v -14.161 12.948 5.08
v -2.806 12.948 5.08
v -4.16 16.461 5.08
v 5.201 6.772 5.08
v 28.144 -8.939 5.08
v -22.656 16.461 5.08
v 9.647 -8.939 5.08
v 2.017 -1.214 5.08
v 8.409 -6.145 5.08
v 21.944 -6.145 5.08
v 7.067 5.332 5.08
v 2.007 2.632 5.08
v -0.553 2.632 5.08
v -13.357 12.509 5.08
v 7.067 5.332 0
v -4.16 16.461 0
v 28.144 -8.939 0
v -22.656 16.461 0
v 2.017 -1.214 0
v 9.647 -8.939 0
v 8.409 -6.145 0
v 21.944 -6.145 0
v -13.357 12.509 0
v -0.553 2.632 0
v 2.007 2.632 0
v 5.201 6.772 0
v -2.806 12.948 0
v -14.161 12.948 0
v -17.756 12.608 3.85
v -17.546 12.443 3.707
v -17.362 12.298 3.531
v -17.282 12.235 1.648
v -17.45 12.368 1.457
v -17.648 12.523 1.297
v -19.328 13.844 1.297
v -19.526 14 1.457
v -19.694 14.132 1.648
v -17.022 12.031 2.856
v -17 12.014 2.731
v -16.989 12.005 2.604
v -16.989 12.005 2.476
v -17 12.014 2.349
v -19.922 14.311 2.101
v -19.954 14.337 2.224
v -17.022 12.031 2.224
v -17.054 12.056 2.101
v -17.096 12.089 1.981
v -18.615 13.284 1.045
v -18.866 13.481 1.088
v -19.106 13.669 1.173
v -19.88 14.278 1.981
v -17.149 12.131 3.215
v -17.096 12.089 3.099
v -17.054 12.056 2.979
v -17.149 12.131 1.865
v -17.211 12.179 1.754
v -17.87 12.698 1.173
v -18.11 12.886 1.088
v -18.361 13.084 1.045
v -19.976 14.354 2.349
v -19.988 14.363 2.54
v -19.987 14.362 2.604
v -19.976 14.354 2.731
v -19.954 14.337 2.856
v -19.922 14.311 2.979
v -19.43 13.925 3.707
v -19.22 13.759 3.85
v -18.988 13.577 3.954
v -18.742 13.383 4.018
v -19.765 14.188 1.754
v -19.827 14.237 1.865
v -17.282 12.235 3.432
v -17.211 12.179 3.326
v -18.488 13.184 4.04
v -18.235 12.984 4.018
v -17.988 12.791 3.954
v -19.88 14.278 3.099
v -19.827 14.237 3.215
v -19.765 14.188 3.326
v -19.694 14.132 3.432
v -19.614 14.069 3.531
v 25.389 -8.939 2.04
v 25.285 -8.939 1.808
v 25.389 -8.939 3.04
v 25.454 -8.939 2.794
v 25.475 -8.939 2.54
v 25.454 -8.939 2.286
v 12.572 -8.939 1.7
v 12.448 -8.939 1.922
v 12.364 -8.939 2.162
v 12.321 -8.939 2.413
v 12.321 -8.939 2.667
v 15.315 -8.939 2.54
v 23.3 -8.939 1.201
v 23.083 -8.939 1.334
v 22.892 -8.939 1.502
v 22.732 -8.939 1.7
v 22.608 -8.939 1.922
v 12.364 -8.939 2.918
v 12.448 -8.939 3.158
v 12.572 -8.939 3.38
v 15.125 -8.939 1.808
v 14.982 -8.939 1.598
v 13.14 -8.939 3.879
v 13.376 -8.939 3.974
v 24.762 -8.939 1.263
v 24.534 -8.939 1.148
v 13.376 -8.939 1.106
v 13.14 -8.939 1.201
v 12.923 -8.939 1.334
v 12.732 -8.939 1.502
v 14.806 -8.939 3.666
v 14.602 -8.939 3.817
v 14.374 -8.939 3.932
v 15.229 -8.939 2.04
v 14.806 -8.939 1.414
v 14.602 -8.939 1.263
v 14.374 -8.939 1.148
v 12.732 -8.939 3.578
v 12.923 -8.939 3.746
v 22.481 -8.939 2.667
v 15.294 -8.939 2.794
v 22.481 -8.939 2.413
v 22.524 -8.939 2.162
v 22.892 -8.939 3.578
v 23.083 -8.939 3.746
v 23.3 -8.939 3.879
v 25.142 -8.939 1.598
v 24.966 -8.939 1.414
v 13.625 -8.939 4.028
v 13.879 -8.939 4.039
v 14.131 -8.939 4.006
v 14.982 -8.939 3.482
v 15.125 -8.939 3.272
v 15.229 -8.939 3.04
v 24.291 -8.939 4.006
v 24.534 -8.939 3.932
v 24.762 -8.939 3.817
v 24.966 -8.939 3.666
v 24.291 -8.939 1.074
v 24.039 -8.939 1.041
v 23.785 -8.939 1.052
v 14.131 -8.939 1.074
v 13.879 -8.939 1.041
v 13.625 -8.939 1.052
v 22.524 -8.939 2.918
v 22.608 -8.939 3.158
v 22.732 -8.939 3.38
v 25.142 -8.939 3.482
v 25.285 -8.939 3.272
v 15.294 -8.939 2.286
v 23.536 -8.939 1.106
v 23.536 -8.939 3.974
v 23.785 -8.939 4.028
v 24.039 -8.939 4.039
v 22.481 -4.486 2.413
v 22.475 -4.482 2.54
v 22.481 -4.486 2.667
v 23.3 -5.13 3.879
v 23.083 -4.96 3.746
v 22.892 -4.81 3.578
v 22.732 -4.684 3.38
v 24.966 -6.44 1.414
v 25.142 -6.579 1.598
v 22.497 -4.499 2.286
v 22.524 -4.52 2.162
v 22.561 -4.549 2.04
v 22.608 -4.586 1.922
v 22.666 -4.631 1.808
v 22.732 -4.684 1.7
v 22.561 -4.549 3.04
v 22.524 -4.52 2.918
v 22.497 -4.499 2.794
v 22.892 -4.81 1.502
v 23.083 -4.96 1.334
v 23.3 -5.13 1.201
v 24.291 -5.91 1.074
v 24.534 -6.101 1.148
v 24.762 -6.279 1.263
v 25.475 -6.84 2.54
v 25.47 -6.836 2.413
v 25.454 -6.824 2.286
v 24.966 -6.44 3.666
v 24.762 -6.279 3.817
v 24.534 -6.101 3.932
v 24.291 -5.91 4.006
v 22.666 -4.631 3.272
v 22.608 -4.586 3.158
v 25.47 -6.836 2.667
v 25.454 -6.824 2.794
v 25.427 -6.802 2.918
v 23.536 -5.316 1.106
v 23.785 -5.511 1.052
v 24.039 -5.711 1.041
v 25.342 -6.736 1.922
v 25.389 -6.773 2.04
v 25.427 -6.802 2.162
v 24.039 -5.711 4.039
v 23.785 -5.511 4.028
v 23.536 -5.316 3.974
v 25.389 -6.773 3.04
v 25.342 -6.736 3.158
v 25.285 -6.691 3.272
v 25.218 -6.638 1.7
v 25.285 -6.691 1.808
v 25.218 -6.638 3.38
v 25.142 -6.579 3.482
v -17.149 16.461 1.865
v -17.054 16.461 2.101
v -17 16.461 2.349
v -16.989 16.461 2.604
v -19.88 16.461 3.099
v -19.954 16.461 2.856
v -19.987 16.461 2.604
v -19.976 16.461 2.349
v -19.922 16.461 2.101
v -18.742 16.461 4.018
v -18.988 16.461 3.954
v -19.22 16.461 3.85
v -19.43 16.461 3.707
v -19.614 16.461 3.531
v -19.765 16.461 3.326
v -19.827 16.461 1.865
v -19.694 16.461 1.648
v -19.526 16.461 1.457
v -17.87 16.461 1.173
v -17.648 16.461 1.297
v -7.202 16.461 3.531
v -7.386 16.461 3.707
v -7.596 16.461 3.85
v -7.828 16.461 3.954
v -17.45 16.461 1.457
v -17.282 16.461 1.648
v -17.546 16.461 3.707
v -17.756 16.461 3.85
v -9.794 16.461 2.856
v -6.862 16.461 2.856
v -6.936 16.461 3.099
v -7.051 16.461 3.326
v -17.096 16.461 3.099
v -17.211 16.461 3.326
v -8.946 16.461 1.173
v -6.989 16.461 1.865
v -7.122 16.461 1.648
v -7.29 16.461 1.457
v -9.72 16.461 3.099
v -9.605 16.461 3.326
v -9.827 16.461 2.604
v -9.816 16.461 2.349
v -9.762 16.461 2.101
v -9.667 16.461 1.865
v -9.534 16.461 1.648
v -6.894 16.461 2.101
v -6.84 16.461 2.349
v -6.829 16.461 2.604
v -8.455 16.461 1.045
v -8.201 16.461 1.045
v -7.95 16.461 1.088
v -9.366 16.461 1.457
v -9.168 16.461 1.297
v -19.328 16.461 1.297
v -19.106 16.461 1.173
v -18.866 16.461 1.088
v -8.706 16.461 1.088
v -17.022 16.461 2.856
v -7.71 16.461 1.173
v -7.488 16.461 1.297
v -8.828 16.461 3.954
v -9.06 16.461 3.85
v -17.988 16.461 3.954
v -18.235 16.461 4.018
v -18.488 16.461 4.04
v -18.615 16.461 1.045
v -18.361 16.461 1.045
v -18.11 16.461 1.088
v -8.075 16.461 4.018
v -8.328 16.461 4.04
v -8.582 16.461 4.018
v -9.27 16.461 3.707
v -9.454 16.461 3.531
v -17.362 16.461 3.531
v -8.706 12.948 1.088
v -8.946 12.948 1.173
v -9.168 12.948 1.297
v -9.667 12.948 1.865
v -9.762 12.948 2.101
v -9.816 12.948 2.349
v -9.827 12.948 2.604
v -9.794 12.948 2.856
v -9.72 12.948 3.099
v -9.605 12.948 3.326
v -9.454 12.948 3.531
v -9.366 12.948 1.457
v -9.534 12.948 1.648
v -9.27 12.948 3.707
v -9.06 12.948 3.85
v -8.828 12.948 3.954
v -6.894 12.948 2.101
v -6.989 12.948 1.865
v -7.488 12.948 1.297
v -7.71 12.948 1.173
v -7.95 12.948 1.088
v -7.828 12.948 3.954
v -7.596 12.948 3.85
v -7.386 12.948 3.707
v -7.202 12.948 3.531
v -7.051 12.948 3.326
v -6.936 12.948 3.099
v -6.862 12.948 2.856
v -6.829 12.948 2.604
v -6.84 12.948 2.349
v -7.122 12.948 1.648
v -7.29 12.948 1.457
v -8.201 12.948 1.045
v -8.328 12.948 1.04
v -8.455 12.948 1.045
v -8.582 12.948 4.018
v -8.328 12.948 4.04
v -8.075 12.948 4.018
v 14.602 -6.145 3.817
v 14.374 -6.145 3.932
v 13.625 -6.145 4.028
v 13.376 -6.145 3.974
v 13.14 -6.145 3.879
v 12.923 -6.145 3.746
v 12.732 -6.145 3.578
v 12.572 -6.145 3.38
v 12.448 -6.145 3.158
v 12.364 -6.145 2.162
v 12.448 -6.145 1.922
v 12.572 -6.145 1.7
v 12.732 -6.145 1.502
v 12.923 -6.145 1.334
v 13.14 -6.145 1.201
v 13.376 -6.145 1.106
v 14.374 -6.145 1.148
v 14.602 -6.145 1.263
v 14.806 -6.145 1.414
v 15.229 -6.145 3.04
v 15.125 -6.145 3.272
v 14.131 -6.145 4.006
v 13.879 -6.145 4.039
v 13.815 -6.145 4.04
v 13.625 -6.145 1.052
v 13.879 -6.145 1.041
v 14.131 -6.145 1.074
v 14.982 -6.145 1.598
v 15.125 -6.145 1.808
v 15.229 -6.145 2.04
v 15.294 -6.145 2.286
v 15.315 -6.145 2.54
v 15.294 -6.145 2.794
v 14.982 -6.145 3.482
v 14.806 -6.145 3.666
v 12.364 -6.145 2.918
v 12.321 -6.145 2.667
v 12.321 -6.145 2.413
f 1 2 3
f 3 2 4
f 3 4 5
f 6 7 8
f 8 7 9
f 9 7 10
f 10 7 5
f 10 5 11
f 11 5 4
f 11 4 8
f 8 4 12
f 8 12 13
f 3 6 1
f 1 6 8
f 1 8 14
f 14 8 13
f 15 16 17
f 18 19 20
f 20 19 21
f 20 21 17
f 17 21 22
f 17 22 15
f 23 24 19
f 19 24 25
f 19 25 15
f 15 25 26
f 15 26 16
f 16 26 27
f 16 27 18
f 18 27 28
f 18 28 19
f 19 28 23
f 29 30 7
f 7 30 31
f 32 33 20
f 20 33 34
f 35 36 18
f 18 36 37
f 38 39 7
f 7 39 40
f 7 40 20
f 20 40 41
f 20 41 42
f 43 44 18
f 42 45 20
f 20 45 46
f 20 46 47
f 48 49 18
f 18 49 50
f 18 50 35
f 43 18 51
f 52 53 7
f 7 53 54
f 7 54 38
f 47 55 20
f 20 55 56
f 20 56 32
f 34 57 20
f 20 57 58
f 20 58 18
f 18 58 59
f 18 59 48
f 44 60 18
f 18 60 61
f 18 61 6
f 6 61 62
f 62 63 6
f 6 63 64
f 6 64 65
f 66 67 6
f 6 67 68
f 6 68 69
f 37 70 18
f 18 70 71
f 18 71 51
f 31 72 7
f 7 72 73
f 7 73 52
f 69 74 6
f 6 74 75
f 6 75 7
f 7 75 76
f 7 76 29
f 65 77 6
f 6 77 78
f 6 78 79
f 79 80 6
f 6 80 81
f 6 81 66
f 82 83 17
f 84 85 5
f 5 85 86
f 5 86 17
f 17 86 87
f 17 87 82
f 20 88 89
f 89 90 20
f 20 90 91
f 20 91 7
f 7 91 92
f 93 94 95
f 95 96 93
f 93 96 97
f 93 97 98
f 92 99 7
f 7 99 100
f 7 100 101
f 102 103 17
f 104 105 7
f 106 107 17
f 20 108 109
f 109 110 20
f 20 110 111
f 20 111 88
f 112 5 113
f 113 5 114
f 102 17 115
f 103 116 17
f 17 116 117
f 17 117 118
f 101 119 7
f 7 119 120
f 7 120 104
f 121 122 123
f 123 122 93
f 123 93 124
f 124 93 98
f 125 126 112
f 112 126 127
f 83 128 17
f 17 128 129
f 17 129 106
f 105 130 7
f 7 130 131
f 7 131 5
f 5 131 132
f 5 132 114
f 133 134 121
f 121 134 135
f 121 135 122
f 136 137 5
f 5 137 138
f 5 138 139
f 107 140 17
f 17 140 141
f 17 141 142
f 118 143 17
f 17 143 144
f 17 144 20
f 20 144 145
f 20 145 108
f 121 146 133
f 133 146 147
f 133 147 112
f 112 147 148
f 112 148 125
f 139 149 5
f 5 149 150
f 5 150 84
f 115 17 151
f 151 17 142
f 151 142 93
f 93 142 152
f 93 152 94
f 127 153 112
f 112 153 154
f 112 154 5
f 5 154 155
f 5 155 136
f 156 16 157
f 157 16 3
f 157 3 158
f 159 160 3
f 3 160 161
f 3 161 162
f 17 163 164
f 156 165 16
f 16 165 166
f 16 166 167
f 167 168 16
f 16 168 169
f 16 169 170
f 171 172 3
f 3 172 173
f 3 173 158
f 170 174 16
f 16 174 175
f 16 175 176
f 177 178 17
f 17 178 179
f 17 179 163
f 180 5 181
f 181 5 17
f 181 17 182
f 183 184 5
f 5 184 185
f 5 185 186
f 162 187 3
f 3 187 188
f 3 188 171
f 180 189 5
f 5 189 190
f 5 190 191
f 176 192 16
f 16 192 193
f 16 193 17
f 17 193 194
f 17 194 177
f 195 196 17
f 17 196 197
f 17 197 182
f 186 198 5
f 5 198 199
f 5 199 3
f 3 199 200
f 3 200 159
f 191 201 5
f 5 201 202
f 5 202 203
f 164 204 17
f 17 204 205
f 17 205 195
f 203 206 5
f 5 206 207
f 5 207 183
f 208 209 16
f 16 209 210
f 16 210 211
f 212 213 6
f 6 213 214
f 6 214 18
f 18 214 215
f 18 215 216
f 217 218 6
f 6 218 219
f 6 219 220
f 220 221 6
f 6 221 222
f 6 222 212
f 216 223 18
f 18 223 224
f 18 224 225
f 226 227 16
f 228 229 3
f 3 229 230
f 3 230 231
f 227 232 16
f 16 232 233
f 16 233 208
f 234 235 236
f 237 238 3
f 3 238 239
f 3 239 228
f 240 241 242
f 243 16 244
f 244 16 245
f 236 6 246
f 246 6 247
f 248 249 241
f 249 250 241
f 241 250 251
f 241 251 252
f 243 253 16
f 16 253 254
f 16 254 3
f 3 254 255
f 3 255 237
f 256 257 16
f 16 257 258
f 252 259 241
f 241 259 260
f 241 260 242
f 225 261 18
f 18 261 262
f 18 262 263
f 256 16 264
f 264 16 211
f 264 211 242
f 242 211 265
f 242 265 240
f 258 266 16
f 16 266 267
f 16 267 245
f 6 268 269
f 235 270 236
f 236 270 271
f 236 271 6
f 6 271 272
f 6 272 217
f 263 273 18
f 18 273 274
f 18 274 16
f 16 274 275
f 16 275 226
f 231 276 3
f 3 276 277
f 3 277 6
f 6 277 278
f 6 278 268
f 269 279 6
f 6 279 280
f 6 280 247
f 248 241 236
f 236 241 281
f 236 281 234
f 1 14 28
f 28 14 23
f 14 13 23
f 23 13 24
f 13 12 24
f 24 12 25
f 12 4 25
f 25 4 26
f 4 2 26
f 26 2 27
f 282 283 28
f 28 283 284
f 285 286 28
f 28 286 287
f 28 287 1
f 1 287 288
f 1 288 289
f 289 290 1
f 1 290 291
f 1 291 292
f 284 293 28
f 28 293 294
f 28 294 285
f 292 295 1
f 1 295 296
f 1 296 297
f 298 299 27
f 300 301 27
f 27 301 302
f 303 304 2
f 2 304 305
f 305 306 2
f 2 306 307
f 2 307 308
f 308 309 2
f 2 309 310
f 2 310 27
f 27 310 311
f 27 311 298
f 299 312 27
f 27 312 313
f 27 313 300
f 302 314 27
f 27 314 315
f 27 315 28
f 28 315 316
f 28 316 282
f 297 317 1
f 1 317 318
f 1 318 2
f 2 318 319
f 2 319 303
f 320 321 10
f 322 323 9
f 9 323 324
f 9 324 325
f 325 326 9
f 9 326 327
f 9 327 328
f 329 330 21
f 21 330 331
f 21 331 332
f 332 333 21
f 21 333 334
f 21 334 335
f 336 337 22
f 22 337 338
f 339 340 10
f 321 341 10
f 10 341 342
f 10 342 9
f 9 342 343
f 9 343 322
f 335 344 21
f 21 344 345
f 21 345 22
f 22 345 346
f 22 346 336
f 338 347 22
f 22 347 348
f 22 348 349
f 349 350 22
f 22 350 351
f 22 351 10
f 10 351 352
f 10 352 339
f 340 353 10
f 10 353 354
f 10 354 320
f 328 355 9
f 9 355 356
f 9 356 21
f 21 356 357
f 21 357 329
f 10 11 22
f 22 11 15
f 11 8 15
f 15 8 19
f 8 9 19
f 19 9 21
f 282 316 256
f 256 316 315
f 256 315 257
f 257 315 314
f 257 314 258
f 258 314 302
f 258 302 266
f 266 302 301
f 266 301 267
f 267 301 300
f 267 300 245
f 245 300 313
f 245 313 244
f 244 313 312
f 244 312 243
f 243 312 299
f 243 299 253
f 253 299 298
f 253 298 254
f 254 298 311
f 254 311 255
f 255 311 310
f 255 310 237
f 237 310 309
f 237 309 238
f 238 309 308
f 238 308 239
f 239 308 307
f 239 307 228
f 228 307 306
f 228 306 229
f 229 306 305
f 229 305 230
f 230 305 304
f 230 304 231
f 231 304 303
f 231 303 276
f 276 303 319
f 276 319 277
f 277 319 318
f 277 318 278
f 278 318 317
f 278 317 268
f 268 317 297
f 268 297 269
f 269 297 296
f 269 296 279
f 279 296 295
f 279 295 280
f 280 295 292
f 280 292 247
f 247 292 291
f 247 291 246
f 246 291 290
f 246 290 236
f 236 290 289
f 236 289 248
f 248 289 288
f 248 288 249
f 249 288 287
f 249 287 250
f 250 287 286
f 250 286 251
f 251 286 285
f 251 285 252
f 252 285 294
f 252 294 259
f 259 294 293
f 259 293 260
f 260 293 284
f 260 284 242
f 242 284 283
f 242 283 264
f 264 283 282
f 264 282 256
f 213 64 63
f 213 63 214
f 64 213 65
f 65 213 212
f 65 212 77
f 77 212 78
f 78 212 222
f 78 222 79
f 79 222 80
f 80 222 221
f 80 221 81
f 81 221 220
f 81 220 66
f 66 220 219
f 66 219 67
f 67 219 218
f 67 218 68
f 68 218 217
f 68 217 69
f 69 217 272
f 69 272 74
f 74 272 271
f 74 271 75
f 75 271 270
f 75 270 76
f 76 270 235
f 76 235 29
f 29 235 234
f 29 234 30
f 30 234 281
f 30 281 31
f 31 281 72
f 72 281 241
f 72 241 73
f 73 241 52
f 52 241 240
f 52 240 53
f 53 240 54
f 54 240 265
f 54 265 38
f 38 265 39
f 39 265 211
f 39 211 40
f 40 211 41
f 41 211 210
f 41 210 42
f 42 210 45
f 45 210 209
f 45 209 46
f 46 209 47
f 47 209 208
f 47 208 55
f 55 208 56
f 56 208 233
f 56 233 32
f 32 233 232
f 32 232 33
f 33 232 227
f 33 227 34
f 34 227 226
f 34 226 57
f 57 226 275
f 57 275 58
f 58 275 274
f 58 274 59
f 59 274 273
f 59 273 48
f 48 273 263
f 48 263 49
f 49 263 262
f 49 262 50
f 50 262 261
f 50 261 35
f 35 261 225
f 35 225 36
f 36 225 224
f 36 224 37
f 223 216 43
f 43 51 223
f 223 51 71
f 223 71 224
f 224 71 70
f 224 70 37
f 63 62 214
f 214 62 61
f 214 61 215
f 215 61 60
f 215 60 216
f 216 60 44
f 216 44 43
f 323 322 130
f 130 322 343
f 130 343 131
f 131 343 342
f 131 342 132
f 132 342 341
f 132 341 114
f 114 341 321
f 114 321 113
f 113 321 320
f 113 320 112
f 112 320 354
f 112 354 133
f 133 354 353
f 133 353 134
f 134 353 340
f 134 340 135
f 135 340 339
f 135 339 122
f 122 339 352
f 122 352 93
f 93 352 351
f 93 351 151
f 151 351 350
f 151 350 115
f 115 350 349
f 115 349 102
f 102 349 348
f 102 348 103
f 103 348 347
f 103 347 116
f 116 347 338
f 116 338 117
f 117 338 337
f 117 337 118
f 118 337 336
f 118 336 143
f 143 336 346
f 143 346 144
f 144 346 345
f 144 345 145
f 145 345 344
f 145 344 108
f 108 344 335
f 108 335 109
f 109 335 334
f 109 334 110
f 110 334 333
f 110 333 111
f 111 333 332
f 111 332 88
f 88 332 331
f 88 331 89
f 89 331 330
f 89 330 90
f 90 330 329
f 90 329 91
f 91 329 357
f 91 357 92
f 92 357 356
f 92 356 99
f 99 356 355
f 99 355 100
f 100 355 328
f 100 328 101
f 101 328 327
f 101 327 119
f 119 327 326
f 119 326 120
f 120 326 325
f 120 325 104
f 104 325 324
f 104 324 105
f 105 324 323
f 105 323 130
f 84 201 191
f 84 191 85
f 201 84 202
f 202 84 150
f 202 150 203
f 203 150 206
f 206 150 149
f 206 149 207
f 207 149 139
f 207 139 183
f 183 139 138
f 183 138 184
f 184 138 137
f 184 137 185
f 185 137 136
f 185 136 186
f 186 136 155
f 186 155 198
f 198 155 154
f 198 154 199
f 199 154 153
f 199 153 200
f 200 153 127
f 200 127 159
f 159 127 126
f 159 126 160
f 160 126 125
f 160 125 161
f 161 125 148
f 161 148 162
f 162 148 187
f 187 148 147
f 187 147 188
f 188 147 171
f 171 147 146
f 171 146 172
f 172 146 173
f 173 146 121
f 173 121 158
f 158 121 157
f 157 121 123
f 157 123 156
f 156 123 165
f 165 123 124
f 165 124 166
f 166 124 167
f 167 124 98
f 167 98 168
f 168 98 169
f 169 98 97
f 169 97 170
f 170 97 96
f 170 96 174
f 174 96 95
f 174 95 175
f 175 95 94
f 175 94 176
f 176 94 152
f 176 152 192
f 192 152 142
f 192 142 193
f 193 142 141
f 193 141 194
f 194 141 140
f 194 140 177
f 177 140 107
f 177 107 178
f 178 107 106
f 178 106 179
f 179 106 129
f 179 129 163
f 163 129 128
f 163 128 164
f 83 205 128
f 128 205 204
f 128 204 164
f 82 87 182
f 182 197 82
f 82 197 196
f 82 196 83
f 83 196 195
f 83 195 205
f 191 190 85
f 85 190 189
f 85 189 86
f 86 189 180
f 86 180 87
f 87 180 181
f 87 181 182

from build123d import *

# Parameters (mm, degrees)
BOSS_EXTRUDE1_DEPTH = 5.08
SKETCH2_R           = 1.5
CUT_EXTRUDE1_DEPTH  = 5.08
SKETCH3_R           = 1.5
CUT_EXTRUDE2_DEPTH  = 6.604


with BuildPart() as part:
    # Sketch1 → Boss-Extrude1 (new body)
    with BuildSketch(Plane.XY):
        Polygon((-22.656445993, 16.461324042), (-4.159581882, 16.461324042), (28.143554007, -8.938675958), (9.646689895, -8.938675958), align=None)
        Polygon((-13.356685139, 12.508658791), (-0.553226603, 2.631705063), (2.007465105, 2.631705063), (5.201047175, 6.771533672), (-2.806028737, 12.948420804), (-14.161473962, 12.948420804), align=None, mode=Mode.SUBTRACT)
        Polygon((2.017499691, -1.213937924), (8.409364086, -6.144804743), (21.944448825, -6.144804743), (7.067180743, 5.33194492), align=None, mode=Mode.SUBTRACT)
    extrude(amount=BOSS_EXTRUDE1_DEPTH)

    # Sketch2 → Cut-Extrude1 (cut)
    with BuildSketch(Plane(origin=(0, 16.461324042, 0), x_dir=(1, 0, 0), z_dir=(0, 1, 0))):
        with Locations(Location((-18.488013937, -2.54, 0), (0, 0, 270))):
            Circle(SKETCH2_R)
        with Locations(Location((-8.328013937, -2.54, 0), (0, 0, 270))):
            Circle(SKETCH2_R)
    extrude(amount=-CUT_EXTRUDE1_DEPTH, mode=Mode.SUBTRACT)

    # Sketch3 → Cut-Extrude2 (cut)
    with BuildSketch(Plane(origin=(0, -8.938675958, 0), x_dir=(-1, 0, 0), z_dir=(0, -1, 0))):
        with Locations(Location((-23.975121951, -2.54, 0), (0, 0, 180))):
            Circle(SKETCH3_R)
        with Locations(Location((-13.815121951, -2.54, 0), (0, 0, 180))):
            Circle(SKETCH3_R)
    extrude(amount=-CUT_EXTRUDE2_DEPTH, mode=Mode.SUBTRACT)


solid = part.part
